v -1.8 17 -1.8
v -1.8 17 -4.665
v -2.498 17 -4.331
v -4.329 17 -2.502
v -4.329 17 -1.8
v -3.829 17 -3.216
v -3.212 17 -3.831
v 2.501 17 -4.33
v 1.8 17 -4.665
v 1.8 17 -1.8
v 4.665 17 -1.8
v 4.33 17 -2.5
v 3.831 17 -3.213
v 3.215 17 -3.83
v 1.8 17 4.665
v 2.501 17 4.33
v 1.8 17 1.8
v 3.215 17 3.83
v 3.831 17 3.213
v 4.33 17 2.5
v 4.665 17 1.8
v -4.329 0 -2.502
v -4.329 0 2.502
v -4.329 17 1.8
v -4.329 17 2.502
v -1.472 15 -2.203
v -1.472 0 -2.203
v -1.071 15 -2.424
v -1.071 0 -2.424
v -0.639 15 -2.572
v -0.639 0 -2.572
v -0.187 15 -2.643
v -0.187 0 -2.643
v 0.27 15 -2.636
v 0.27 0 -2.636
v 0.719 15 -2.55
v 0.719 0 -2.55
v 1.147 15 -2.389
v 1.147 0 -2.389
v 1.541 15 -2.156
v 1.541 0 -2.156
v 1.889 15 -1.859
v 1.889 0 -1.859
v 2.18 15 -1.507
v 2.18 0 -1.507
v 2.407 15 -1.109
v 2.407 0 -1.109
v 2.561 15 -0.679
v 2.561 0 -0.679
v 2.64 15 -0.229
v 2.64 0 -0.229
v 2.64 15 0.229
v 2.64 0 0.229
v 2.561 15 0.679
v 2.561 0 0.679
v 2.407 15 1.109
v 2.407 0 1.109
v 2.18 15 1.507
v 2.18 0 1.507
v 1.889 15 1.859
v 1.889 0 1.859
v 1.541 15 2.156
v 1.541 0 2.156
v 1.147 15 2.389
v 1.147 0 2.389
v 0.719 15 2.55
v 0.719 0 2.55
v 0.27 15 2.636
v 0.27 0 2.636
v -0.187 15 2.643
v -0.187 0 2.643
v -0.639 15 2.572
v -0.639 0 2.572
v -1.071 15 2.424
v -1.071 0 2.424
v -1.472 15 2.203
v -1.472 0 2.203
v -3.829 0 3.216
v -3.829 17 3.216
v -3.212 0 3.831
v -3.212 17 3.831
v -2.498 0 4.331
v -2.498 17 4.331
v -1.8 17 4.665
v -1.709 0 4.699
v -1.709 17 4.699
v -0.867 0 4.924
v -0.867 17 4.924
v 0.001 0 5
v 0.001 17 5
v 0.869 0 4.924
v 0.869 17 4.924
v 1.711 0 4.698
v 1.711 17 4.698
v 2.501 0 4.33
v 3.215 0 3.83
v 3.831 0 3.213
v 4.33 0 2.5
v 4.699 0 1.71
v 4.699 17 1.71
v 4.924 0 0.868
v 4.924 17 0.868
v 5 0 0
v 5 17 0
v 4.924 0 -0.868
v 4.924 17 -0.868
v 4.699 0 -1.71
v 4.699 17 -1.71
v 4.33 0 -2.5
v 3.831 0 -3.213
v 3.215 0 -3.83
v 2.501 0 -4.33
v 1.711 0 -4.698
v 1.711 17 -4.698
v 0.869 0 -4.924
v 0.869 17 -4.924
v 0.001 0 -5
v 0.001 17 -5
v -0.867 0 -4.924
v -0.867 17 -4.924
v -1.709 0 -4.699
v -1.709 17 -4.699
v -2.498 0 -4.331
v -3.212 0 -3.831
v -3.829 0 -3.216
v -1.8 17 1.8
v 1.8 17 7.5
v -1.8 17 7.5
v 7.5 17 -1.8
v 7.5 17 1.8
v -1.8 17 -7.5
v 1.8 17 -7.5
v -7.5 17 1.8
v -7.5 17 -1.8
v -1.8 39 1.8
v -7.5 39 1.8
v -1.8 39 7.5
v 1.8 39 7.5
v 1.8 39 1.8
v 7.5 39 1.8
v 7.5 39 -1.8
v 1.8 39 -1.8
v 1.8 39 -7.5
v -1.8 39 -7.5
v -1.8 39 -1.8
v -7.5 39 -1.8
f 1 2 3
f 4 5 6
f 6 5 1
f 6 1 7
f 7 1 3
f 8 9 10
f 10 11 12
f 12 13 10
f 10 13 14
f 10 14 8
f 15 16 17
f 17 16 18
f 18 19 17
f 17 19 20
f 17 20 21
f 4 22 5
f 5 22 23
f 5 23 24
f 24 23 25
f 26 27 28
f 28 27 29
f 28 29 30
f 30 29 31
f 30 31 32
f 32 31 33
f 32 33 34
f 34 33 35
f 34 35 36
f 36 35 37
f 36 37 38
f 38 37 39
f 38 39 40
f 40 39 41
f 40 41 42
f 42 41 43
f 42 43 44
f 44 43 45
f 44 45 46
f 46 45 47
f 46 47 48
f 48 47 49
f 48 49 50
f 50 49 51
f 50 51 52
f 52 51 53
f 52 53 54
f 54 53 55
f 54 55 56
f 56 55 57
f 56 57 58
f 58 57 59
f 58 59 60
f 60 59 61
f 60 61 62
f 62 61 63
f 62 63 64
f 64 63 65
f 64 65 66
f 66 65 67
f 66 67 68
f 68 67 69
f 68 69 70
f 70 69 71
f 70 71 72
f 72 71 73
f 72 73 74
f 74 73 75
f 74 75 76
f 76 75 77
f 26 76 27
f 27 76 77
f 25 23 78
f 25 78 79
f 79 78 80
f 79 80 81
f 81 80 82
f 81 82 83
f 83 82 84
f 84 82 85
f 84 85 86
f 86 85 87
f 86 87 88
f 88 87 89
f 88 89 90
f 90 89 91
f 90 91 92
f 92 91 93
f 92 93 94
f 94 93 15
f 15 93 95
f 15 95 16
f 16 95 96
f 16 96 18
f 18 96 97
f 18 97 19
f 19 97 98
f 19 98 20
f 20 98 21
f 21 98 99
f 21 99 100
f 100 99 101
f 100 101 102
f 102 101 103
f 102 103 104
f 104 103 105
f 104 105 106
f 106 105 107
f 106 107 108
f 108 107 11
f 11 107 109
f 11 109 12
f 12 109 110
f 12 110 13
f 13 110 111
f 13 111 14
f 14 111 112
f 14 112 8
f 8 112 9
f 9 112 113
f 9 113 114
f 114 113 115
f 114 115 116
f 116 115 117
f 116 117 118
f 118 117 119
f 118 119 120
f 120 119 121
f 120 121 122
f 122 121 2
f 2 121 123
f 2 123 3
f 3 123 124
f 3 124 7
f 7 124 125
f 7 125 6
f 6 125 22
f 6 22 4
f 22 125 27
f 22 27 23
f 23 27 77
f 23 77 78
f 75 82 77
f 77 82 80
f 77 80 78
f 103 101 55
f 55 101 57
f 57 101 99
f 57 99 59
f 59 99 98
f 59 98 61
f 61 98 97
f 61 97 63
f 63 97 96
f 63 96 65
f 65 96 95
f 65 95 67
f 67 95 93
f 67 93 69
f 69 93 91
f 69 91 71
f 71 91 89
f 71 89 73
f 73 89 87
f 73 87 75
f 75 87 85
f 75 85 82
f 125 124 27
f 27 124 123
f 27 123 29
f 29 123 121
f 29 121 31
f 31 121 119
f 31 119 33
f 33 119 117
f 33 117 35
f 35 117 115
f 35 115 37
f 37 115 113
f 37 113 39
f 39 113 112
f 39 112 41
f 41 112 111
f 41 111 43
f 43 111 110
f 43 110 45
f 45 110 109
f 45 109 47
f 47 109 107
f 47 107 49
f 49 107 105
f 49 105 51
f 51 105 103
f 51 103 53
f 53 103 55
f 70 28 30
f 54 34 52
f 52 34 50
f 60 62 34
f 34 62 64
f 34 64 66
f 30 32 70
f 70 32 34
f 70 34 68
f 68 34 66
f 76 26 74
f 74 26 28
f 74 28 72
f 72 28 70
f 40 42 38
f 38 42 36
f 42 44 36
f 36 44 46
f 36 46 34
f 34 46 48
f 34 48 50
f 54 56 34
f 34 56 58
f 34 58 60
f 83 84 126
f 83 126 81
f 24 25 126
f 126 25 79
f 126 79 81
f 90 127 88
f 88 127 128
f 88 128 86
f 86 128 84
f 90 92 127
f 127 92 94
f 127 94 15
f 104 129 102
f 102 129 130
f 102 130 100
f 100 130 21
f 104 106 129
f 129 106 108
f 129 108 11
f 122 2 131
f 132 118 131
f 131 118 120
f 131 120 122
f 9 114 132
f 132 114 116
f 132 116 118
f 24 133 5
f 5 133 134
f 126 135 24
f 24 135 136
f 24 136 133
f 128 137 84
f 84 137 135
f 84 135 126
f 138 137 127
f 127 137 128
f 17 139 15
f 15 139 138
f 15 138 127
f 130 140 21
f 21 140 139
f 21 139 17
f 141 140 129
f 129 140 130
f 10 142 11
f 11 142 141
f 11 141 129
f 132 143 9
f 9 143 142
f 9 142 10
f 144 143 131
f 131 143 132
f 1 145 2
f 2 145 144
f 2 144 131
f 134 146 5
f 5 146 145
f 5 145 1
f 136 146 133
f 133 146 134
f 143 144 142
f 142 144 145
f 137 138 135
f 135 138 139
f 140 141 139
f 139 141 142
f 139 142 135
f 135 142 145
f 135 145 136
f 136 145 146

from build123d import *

# Parameters (mm, degrees)
EXTRUDE_2_DEPTH = 15
EXTRUDE_3_DEPTH = 2
EXTRUDE_4_DEPTH = 22


with BuildPart() as part:
    # 草图1 → 凸台-拉伸2 (new body)
    with BuildSketch(Plane(origin=(0, 0, 0), x_dir=(1, 0, 0), z_dir=(0, 1, 0))):
        with BuildLine():
            Line((-4.329004892, 2.501942574), (-4.329004892, -2.501942574))
            ThreePointArc((-4.329004892, -2.501942574), (5, 0), (-4.329004892, 2.501942574))
        make_face()
        with BuildLine():
            Line((-1.472222222, 2.203420461), (-1.472222222, -2.203420461))
            ThreePointArc((-1.472222222, -2.203420461), (2.65, 0), (-1.472222222, 2.203420461))
        make_face(mode=Mode.SUBTRACT)
    extrude(amount=EXTRUDE_2_DEPTH)

    # 草图2 → 凸台-拉伸3 (add)
    with BuildSketch(Plane(origin=(0, 15, 0), x_dir=(1, 0, 0), z_dir=(0, 1, 0))):
        with BuildLine():
            Line((-4.329004892, 2.501942574), (-4.329004892, -2.501942574))
            ThreePointArc((-4.329004892, -2.501942574), (5, 0), (-4.329004892, 2.501942574))
        make_face()
    extrude(amount=EXTRUDE_3_DEPTH)

    # 草图3 → 凸台-拉伸4 (add)
    with BuildSketch(Plane(origin=(0, 17, 0), x_dir=(1, 0, 0), z_dir=(0, 1, 0))):
        Polygon((-7.5, 0), (-7.5, 1.8), (-1.8, 1.8), (-1.8, 7.5), (0, 7.5), (1.8, 7.5), (1.8, 1.8), (7.5, 1.8), (7.5, -1.8), (1.8, -1.8), (1.8, -7.5), (-1.8, -7.5), (-1.8, -1.8), (-7.5, -1.8), align=None)
    extrude(amount=EXTRUDE_4_DEPTH)


solid = part.part
